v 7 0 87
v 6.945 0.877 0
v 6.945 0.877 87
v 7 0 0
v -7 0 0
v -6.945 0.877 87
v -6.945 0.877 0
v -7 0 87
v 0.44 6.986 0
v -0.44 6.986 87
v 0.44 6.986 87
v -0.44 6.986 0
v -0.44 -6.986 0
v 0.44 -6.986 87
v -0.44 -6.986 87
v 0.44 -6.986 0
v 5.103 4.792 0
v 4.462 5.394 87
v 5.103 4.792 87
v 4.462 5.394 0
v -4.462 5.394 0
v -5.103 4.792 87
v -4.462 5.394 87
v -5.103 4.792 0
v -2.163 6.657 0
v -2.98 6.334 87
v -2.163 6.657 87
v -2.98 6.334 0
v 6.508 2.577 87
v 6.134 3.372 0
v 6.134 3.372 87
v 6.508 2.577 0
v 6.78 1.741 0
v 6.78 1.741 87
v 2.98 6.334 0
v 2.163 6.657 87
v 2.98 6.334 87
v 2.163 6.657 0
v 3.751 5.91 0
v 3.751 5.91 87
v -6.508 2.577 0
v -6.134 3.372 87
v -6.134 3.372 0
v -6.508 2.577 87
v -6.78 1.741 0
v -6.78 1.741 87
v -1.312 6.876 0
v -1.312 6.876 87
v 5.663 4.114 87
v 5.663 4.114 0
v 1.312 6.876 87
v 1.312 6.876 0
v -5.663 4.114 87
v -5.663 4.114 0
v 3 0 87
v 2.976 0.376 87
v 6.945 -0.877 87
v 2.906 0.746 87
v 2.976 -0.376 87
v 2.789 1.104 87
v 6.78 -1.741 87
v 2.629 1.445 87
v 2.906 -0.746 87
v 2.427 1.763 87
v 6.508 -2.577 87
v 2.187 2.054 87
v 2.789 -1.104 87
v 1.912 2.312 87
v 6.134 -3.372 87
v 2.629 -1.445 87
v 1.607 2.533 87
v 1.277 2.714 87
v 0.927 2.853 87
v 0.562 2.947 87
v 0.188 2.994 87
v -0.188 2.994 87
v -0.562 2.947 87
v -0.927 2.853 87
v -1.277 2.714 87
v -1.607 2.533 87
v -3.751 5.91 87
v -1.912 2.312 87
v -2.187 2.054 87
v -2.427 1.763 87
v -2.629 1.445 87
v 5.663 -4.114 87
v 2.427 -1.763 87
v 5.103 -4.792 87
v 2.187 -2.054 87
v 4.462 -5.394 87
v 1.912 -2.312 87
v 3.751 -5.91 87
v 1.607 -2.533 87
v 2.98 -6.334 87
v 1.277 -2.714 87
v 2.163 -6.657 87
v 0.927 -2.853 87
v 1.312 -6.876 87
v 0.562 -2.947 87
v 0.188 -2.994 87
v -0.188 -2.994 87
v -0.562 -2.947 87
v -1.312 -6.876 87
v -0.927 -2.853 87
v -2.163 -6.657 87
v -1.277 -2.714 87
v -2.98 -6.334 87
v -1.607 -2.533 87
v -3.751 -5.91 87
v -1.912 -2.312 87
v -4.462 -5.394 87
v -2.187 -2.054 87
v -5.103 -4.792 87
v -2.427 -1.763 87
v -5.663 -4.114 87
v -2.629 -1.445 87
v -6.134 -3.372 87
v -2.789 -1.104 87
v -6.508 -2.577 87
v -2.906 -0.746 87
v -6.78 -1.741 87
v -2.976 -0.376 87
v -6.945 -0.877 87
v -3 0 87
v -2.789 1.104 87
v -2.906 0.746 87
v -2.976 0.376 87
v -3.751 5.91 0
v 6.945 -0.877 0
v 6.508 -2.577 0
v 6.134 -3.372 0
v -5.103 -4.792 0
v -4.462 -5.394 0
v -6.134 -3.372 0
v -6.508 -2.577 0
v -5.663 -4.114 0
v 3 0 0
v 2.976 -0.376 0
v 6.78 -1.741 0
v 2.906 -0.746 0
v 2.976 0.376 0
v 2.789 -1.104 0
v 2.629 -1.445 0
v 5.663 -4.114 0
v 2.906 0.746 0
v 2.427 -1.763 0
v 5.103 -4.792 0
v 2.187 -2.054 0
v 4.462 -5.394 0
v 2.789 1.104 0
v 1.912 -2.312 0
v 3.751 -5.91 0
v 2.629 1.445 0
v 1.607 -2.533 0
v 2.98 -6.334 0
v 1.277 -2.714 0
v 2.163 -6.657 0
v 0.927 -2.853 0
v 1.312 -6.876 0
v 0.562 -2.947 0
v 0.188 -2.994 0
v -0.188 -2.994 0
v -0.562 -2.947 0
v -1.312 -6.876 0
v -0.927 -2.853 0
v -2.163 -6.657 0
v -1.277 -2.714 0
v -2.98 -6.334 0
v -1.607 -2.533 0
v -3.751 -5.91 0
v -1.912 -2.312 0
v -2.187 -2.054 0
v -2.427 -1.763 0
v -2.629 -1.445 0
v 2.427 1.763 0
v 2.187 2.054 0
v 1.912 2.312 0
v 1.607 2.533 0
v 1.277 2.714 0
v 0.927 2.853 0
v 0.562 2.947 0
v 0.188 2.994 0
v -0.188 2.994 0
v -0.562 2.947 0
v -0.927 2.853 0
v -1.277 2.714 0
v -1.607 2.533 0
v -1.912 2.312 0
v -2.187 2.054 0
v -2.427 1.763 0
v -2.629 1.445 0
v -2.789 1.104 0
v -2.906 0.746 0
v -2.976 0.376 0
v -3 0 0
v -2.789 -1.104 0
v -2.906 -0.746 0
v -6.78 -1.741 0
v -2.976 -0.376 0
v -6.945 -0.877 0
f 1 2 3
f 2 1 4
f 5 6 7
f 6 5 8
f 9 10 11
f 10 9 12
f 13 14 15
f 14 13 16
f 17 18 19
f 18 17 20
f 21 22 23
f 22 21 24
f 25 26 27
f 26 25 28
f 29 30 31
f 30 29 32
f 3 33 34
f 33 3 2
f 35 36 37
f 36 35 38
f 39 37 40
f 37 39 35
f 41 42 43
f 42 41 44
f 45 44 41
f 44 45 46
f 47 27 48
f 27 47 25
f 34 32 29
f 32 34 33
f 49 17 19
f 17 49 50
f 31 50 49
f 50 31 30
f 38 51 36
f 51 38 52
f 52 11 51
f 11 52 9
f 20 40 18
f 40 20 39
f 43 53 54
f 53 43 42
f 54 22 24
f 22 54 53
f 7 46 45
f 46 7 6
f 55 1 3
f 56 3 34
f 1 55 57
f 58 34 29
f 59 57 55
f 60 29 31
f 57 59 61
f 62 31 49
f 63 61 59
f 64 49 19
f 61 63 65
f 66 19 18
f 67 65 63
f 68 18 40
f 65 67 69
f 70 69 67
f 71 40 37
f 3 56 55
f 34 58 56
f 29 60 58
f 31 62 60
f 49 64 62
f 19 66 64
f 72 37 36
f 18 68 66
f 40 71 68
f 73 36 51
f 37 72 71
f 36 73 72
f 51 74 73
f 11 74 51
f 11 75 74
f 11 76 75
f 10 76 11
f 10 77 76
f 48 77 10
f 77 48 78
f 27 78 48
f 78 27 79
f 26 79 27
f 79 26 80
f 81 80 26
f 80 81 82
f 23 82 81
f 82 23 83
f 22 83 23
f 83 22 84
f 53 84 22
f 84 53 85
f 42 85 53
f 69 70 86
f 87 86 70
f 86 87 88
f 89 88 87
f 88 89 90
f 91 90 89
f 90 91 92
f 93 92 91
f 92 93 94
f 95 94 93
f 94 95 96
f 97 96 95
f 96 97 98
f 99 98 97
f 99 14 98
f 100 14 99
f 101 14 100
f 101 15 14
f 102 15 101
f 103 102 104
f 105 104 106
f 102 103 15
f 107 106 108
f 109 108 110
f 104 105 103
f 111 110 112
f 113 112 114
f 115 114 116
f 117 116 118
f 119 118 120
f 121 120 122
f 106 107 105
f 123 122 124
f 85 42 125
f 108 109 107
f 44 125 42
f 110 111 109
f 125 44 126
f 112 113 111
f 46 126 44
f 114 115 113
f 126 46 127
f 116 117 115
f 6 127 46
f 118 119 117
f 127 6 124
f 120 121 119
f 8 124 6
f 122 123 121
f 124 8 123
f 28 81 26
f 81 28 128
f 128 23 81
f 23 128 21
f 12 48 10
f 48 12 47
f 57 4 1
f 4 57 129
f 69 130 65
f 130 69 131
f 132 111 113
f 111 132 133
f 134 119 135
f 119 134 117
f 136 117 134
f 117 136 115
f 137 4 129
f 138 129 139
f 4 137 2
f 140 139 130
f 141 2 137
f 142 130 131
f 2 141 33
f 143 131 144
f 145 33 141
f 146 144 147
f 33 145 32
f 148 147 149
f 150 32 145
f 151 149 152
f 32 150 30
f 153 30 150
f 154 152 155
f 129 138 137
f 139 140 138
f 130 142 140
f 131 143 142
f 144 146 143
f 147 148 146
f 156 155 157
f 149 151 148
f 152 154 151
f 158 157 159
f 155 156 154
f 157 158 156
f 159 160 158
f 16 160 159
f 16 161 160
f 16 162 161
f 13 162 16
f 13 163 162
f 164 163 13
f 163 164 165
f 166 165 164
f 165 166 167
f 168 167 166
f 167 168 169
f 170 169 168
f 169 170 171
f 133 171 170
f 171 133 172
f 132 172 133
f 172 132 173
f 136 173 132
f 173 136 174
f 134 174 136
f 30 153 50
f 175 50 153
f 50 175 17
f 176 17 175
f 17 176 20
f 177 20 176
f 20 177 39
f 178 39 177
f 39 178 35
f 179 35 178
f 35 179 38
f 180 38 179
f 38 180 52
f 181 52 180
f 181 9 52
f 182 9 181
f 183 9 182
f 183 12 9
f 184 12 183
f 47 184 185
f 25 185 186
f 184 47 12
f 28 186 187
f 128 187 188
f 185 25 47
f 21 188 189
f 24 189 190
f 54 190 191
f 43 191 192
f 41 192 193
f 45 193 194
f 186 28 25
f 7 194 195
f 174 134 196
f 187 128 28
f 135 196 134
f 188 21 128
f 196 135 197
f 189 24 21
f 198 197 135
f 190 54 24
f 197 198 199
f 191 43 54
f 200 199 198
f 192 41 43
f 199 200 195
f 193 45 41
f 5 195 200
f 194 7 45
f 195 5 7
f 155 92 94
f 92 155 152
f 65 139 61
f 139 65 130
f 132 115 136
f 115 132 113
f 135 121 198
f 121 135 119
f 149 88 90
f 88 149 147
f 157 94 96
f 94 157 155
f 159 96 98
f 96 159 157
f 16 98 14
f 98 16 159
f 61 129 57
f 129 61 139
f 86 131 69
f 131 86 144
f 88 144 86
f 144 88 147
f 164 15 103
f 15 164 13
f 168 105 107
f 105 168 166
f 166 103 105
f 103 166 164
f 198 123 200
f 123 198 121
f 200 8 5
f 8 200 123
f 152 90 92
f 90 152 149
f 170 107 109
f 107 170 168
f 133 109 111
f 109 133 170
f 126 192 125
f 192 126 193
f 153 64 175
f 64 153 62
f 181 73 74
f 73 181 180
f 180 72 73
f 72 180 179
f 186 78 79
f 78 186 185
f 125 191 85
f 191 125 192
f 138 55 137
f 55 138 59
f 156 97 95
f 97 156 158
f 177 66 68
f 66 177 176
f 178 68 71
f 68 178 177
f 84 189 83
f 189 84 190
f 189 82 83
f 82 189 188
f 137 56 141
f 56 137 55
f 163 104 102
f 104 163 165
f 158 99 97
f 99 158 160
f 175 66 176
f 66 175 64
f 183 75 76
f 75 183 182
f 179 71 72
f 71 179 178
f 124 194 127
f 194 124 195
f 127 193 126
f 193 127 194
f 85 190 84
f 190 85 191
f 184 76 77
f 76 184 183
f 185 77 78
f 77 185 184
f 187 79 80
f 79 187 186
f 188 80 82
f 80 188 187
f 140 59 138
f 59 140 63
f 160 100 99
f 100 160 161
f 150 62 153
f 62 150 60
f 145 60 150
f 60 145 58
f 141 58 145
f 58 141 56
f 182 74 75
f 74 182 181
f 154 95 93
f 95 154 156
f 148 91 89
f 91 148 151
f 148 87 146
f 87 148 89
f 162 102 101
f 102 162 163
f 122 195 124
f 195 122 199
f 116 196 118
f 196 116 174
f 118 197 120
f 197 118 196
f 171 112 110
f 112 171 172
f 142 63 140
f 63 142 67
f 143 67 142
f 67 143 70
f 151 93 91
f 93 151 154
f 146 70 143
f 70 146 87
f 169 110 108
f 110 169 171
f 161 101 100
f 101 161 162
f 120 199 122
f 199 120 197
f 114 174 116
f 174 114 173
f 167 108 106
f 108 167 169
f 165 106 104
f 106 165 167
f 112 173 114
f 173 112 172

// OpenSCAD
$fn = 50;


difference() {
	union() {
		cylinder(h = 87, r = 7.0000000000);
	}
	union() {
		translate(v = [0, 0, -100]) {
			cylinder(h = 200, r = 3.0000000000);
		}
	}
}
